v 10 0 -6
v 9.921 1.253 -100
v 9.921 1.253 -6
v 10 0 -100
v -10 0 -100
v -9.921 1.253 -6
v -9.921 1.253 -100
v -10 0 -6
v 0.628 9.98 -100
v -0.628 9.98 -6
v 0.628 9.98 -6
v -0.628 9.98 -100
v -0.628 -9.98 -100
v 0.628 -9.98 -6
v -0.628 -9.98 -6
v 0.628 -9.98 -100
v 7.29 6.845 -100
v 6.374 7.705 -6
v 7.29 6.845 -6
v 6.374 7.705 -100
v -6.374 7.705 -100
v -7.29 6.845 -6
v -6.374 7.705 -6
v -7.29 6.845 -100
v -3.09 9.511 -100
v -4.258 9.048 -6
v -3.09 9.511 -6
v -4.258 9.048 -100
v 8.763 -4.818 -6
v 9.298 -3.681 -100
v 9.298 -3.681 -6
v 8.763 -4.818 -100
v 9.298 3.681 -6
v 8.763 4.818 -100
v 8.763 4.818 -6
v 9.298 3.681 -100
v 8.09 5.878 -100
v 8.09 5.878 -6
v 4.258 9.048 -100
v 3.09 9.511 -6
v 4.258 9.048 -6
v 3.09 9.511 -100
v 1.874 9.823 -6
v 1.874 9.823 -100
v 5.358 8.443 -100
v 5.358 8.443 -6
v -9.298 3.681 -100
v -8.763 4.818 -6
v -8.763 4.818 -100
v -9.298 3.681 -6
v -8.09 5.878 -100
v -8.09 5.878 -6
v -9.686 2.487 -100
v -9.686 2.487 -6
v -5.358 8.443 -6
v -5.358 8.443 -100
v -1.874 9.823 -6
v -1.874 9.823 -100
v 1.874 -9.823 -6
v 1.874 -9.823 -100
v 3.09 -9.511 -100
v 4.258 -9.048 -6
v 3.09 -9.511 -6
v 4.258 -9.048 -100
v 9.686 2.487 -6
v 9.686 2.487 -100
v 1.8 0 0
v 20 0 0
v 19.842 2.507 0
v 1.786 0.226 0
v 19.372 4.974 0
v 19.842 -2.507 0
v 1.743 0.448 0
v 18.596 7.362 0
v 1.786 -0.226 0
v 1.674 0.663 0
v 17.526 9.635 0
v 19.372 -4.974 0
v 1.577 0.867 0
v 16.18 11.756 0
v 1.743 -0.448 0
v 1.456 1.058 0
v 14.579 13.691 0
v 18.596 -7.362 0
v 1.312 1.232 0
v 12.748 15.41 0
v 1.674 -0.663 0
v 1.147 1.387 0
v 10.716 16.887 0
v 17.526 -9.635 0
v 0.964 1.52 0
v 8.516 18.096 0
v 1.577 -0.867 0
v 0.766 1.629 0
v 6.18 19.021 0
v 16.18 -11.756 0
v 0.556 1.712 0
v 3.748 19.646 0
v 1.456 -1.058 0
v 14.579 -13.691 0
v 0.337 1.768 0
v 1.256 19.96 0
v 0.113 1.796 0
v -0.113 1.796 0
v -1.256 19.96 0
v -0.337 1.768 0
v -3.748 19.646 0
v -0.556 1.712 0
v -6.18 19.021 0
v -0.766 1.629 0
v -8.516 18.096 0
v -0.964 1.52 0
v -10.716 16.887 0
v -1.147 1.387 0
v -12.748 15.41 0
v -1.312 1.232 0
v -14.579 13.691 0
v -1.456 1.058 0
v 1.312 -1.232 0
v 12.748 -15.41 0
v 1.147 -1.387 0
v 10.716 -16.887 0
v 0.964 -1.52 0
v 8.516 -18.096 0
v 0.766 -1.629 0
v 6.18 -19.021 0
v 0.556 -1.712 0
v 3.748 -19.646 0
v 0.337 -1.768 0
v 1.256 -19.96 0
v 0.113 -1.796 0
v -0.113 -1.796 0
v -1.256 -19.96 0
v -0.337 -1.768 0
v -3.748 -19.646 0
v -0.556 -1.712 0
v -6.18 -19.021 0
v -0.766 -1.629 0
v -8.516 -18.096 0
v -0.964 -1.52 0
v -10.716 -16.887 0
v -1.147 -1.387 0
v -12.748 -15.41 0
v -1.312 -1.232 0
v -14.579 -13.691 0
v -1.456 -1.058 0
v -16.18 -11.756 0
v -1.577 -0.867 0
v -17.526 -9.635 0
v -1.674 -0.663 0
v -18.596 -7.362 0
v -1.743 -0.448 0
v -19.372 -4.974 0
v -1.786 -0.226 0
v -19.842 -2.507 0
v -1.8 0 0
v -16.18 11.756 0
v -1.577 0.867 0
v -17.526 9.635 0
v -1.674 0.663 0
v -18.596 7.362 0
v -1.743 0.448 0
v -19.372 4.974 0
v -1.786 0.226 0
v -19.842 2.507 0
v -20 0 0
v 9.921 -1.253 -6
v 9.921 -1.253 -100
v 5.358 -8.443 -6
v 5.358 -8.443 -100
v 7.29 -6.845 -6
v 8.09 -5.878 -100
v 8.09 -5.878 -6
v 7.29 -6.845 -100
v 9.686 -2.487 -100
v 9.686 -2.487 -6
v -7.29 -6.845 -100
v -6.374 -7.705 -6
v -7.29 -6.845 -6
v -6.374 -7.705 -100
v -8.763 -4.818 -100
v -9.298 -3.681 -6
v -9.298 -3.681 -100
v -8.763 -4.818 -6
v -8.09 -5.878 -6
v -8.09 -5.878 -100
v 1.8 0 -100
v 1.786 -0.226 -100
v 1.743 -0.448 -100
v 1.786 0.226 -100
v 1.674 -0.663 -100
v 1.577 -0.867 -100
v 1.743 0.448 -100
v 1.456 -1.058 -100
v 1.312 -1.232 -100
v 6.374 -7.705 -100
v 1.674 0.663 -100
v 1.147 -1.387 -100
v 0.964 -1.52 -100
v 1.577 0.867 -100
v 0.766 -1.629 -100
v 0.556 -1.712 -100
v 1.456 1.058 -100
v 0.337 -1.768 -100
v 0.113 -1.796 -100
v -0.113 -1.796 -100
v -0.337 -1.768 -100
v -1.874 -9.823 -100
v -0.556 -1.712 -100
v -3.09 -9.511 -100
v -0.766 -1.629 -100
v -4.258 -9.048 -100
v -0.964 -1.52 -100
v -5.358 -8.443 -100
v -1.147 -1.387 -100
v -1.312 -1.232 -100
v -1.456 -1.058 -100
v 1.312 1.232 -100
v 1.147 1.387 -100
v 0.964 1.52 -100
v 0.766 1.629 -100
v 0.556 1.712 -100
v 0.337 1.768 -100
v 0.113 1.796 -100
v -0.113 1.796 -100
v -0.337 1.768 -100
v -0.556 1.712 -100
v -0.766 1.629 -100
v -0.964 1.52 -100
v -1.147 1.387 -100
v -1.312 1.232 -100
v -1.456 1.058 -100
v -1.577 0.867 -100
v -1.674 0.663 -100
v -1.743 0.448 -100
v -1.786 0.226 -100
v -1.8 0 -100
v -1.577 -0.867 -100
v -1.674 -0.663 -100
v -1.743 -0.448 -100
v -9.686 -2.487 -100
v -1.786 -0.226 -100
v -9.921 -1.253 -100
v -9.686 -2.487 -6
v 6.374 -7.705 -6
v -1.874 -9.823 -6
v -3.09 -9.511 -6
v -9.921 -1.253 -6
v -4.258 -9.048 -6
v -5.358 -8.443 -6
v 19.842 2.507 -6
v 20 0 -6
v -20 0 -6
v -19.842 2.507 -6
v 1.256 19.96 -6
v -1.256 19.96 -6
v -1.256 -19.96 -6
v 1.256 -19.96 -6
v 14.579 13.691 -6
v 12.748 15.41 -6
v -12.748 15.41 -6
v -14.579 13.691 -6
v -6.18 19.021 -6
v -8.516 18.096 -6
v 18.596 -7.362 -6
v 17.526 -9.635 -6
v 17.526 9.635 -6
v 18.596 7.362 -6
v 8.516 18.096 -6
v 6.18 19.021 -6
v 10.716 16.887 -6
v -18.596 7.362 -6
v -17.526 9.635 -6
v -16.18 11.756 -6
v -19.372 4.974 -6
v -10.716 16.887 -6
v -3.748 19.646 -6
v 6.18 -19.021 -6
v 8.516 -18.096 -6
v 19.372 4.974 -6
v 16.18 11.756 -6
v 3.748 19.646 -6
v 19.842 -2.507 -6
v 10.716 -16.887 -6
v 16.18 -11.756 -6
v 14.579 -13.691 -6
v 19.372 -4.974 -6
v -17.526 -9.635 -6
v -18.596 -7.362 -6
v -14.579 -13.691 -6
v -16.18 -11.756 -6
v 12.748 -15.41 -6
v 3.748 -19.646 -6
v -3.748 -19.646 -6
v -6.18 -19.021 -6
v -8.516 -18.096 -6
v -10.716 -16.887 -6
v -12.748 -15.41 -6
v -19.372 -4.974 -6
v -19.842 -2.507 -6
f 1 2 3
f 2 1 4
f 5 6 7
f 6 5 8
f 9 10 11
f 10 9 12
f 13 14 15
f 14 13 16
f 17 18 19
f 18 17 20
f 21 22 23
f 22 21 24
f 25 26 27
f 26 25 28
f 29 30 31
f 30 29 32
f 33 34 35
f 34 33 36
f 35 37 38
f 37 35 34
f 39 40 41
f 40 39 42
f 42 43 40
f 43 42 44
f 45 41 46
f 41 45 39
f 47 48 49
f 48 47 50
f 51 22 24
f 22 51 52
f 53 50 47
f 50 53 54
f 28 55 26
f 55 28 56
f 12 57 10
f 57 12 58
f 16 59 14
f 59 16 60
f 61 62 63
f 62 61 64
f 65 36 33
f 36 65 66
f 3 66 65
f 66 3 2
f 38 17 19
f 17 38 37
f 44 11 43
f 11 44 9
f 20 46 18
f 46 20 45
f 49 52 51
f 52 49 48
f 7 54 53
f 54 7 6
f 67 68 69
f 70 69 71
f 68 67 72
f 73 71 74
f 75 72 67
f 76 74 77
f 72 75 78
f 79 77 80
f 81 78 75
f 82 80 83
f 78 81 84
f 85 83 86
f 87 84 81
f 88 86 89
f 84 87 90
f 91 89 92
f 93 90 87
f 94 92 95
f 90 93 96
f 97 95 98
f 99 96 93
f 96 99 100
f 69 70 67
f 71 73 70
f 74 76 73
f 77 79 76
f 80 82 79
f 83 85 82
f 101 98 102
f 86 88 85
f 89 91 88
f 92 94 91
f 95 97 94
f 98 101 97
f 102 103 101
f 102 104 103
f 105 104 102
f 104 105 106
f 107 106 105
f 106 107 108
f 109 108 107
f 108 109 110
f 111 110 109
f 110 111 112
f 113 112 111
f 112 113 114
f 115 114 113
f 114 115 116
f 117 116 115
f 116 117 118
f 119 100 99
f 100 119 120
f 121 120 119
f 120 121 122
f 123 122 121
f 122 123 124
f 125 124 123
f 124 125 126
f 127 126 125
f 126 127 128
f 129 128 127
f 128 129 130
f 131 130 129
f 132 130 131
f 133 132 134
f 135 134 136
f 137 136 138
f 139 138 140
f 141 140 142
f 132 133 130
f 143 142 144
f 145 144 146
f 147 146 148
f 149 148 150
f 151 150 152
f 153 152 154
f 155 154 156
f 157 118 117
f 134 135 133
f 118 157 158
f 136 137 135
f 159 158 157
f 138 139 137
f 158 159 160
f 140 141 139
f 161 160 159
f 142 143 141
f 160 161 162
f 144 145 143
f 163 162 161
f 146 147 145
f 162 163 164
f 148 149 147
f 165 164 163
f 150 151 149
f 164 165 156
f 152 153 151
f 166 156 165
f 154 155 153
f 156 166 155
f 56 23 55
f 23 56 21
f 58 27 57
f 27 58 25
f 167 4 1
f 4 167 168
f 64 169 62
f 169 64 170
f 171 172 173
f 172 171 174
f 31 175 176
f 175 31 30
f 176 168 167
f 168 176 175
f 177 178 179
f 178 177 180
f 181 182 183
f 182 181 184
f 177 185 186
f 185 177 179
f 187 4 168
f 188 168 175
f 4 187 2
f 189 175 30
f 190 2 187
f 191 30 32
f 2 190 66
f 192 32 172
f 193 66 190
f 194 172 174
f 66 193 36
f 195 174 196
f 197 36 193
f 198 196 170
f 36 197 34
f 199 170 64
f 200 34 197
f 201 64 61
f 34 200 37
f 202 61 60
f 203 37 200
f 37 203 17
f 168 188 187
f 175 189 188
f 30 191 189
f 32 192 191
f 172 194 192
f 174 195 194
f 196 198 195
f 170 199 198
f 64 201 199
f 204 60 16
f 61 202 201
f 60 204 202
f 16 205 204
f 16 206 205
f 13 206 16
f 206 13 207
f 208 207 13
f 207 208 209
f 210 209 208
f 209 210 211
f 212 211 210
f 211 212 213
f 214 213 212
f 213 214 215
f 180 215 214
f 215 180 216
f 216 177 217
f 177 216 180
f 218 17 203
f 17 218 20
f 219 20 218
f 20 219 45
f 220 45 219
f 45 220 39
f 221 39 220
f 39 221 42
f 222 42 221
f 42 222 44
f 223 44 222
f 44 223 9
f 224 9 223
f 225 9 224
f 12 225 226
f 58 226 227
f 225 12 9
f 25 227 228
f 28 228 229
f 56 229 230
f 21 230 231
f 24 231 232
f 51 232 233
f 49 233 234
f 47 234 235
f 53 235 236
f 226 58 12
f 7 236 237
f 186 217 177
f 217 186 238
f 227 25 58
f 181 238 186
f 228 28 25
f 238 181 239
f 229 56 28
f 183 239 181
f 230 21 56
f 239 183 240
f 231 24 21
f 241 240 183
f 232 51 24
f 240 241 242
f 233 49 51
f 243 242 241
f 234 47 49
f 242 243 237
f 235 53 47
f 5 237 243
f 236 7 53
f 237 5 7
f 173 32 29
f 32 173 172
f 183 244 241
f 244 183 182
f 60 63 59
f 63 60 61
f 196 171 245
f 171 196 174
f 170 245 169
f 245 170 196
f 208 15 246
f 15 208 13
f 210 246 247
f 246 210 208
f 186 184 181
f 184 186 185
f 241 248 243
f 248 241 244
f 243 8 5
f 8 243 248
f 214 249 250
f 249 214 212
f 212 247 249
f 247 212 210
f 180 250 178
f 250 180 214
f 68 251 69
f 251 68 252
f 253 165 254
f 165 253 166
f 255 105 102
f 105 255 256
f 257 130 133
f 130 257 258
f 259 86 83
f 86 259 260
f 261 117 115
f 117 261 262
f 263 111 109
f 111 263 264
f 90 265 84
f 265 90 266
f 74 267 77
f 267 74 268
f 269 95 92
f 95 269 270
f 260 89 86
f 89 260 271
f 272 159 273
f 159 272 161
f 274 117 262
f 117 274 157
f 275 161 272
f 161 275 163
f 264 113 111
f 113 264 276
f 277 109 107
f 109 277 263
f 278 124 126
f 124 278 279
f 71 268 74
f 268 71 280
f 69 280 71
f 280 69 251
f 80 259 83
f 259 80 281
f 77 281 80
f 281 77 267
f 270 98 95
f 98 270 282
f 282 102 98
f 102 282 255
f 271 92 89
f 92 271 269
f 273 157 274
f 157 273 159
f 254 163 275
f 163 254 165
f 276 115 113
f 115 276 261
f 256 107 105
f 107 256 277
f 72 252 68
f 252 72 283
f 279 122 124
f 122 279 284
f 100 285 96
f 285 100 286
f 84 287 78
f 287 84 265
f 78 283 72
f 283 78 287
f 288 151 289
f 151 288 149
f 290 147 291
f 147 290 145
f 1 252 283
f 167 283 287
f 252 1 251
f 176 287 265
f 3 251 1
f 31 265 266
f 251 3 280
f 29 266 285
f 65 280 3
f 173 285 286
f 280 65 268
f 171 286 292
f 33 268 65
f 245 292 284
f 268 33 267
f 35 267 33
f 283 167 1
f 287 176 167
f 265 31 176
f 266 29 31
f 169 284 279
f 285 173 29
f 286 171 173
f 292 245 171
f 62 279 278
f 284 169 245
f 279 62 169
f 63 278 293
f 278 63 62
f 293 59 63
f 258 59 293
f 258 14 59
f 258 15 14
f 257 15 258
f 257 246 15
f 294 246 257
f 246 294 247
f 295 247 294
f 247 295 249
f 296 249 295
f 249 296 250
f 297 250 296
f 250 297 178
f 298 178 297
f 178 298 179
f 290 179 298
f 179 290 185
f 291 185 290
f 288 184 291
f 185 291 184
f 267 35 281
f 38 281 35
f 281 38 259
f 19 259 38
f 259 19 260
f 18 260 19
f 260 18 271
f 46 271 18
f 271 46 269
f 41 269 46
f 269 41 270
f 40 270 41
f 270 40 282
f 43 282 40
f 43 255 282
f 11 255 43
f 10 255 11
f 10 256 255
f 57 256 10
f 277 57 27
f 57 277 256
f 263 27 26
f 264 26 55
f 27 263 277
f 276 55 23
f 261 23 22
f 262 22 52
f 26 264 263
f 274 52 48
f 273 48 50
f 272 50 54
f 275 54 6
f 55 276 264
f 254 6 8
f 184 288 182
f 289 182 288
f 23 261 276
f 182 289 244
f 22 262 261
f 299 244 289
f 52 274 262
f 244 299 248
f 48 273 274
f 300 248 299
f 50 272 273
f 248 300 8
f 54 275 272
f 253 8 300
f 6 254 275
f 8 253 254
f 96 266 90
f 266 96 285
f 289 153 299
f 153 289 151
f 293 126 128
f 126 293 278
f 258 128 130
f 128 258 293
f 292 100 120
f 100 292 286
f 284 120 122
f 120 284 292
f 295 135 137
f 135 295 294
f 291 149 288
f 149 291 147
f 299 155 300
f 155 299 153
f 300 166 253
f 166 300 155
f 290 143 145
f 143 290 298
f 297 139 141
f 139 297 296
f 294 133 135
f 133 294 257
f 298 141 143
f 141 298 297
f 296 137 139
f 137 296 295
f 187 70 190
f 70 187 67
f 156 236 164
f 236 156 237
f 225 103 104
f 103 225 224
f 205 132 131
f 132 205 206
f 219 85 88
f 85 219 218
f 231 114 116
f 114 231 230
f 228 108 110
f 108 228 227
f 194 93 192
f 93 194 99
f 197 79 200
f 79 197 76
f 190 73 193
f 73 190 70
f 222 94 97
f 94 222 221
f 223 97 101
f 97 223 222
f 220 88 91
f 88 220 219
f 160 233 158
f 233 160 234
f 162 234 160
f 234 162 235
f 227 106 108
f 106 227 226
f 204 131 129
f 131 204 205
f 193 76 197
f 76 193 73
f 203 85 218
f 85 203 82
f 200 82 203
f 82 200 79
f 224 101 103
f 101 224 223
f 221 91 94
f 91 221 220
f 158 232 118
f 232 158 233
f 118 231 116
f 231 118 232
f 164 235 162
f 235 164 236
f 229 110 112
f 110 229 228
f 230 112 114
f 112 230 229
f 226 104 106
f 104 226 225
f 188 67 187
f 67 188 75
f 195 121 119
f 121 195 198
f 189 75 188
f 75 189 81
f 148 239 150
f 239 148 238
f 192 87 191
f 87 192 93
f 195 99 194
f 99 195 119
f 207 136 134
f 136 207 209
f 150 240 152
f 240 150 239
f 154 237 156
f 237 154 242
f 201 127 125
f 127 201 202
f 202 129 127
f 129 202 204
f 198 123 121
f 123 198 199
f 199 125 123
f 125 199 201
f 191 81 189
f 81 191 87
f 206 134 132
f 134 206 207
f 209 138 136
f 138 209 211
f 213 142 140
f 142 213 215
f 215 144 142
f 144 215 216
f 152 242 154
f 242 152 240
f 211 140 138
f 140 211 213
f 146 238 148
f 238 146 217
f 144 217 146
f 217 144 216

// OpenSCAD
$fn = 50;


difference() {
	union() {
		translate(v = [0, 0, -100.0000000000]) {
			cylinder(h = 100, r = 10.0000000000);
		}
		translate(v = [0, 0, -6.0000000000]) {
			cylinder(h = 6, r = 20.0000000000);
		}
	}
	union() {
		#translate(v = [0, 0, -100]) {
			cylinder(h = 100, r = 1.8000000000);
		}
	}
}
